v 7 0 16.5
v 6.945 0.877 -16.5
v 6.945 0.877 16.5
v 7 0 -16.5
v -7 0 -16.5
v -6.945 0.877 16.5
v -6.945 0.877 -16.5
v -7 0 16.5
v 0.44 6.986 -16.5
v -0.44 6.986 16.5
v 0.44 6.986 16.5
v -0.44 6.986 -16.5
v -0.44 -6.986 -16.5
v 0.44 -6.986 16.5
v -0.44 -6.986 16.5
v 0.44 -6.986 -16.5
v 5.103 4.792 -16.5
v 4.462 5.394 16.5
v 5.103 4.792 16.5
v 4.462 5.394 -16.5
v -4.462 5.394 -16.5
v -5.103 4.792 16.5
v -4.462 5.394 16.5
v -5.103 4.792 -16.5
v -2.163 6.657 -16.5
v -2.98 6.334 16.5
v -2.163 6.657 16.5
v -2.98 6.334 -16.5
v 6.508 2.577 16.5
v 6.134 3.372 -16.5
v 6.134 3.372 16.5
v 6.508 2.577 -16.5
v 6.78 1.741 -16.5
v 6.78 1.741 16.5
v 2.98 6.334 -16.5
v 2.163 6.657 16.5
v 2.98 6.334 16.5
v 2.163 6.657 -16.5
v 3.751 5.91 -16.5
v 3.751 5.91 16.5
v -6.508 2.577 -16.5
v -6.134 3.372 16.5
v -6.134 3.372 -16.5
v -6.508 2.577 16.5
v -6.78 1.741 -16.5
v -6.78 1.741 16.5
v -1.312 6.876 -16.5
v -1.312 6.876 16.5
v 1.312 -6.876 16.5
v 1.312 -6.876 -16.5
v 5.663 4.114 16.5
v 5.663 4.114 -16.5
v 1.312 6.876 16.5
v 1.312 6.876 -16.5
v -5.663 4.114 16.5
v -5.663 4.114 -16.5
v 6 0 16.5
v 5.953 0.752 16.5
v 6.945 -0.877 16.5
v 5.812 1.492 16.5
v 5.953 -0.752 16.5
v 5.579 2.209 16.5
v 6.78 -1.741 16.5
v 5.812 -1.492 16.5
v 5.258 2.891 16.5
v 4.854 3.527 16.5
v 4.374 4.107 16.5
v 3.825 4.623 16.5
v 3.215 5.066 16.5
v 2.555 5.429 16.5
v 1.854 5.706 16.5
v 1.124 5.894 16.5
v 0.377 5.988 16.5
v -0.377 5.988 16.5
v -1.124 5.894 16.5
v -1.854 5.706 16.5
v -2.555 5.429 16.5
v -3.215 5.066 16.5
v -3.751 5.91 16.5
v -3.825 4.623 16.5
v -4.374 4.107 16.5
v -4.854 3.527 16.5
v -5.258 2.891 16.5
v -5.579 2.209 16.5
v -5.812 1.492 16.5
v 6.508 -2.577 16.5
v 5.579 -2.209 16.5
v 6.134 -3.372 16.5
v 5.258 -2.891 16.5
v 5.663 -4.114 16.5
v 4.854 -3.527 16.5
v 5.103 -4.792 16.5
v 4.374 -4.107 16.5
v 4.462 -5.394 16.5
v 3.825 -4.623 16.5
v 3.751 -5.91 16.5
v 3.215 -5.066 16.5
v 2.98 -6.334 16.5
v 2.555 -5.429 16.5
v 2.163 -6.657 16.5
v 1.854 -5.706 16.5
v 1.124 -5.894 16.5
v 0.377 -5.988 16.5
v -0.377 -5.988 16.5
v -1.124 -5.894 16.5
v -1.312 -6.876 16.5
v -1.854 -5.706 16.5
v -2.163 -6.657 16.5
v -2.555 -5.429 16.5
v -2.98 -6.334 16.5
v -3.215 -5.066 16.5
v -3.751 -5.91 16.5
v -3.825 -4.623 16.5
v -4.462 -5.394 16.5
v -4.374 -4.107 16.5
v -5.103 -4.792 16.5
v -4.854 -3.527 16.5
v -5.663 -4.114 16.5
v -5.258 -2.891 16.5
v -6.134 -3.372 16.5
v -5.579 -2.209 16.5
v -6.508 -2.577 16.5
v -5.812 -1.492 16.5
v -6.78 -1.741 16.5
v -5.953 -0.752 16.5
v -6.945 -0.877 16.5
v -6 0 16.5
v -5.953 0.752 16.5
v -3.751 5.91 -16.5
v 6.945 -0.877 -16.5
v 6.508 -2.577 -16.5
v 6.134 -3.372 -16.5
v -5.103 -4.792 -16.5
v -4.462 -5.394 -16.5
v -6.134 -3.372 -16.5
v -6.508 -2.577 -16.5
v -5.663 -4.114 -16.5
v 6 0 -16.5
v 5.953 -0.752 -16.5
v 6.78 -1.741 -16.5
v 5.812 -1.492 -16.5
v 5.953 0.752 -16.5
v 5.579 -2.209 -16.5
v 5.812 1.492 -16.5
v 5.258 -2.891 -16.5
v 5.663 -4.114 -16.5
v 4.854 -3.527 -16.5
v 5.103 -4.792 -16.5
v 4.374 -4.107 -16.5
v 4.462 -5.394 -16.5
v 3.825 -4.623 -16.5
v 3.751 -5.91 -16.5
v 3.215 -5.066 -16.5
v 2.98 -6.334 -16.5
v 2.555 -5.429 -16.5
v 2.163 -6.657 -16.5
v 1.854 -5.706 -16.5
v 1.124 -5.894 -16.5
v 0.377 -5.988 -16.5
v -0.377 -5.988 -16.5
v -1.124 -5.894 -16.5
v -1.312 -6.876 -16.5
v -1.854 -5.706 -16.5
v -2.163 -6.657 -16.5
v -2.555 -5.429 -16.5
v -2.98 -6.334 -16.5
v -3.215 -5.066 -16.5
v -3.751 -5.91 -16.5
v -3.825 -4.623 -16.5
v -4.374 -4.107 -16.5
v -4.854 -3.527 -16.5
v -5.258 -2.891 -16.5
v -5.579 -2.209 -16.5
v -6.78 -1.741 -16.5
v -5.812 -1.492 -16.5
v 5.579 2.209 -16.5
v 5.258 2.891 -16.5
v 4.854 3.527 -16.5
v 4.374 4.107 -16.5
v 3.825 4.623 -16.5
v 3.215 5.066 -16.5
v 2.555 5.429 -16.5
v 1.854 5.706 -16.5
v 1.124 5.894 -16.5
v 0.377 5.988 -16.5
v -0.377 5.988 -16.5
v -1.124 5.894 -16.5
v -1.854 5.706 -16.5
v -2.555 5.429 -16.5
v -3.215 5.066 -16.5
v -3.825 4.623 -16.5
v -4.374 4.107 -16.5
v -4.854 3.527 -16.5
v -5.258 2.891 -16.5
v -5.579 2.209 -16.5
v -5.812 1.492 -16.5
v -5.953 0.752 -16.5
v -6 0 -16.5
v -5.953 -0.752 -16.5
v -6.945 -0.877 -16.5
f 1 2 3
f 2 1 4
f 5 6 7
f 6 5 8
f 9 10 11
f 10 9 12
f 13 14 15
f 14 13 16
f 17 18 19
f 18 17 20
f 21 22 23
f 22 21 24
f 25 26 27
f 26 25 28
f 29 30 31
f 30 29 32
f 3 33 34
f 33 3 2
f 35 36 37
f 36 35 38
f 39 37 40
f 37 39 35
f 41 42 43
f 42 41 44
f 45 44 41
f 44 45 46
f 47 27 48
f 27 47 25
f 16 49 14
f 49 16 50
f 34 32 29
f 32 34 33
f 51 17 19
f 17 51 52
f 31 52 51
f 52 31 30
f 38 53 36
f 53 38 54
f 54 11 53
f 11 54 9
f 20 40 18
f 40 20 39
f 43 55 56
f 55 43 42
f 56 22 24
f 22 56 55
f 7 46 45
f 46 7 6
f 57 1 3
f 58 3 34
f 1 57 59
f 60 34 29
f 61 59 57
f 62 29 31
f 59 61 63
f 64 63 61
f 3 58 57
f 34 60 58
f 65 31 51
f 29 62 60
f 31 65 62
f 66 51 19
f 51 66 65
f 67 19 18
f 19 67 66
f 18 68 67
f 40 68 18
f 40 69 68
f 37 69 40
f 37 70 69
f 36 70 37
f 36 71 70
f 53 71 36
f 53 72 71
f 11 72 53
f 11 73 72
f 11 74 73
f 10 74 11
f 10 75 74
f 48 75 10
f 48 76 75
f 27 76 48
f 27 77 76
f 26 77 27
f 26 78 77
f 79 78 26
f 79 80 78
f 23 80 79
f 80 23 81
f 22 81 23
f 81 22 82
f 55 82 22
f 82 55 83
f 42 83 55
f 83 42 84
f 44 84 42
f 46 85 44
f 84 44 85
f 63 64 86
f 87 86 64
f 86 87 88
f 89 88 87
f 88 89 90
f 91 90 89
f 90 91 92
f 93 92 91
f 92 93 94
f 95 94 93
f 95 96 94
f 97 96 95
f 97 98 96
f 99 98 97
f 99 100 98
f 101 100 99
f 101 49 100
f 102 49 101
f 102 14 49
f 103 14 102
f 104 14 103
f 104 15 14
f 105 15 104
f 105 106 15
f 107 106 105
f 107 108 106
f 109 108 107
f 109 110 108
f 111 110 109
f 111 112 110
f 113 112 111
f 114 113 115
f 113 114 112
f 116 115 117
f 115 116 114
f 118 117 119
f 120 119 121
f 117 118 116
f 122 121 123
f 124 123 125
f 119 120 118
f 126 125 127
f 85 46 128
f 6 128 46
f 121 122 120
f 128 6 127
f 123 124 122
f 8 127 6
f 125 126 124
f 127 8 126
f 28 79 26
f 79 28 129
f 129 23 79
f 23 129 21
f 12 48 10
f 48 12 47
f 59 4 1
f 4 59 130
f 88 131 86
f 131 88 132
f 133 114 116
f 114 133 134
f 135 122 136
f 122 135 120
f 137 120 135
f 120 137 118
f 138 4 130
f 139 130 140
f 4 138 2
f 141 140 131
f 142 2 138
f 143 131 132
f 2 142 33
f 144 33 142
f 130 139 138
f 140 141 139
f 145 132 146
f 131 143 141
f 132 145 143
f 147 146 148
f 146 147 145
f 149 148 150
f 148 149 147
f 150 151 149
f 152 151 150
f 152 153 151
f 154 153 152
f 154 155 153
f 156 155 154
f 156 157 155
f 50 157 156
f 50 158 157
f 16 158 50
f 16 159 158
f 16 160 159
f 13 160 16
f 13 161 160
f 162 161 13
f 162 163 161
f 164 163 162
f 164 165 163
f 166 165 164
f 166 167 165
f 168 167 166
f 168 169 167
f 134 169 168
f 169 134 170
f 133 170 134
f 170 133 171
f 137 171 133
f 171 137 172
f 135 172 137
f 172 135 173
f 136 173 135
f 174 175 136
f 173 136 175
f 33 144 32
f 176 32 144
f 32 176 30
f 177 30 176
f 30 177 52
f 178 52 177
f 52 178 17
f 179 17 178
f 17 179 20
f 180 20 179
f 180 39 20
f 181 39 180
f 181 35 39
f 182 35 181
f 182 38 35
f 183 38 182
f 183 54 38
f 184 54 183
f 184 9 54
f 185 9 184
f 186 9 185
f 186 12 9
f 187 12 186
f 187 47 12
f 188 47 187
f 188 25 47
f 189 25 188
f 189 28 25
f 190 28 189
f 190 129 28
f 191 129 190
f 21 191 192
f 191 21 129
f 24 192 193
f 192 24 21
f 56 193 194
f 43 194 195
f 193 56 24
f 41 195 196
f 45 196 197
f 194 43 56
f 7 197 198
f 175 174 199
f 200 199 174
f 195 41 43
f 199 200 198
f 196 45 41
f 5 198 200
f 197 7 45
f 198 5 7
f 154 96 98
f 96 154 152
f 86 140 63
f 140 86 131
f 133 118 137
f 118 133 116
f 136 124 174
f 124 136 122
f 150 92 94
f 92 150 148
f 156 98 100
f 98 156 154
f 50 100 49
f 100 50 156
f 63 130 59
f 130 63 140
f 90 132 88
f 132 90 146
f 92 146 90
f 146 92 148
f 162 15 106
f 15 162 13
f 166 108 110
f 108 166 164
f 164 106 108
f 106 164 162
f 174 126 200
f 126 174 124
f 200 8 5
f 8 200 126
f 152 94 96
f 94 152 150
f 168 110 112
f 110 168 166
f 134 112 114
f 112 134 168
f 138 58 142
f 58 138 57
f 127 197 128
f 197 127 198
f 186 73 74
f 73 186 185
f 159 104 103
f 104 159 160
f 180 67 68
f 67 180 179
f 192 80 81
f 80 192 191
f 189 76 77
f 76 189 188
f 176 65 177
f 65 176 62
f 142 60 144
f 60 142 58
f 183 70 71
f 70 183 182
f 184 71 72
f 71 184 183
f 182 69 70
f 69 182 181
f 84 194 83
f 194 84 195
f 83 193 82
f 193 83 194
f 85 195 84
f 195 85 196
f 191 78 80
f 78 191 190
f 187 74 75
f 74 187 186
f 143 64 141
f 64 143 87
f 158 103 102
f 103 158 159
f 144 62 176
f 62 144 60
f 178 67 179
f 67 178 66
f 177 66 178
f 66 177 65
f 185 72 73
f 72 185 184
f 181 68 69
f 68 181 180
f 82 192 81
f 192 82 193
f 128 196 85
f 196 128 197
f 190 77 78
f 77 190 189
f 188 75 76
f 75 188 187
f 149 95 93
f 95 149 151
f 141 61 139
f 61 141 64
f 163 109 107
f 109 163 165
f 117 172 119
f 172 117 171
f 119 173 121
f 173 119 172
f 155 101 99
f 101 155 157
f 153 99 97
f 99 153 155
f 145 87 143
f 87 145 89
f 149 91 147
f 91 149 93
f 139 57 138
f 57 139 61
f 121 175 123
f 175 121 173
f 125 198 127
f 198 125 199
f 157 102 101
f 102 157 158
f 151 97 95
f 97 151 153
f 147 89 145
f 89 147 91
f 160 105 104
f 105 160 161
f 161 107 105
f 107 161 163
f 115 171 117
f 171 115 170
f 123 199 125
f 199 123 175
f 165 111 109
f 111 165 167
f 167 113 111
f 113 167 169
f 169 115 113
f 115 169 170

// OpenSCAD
$fn = 50;


difference() {
	union() {
		translate(v = [0, 0, -16.5000000000]) {
			cylinder(h = 33, r = 7.0000000000);
		}
	}
	union() {
		translate(v = [0, 0, -100.0000000000]) {
			cylinder(h = 200, r = 6);
		}
	}
}
